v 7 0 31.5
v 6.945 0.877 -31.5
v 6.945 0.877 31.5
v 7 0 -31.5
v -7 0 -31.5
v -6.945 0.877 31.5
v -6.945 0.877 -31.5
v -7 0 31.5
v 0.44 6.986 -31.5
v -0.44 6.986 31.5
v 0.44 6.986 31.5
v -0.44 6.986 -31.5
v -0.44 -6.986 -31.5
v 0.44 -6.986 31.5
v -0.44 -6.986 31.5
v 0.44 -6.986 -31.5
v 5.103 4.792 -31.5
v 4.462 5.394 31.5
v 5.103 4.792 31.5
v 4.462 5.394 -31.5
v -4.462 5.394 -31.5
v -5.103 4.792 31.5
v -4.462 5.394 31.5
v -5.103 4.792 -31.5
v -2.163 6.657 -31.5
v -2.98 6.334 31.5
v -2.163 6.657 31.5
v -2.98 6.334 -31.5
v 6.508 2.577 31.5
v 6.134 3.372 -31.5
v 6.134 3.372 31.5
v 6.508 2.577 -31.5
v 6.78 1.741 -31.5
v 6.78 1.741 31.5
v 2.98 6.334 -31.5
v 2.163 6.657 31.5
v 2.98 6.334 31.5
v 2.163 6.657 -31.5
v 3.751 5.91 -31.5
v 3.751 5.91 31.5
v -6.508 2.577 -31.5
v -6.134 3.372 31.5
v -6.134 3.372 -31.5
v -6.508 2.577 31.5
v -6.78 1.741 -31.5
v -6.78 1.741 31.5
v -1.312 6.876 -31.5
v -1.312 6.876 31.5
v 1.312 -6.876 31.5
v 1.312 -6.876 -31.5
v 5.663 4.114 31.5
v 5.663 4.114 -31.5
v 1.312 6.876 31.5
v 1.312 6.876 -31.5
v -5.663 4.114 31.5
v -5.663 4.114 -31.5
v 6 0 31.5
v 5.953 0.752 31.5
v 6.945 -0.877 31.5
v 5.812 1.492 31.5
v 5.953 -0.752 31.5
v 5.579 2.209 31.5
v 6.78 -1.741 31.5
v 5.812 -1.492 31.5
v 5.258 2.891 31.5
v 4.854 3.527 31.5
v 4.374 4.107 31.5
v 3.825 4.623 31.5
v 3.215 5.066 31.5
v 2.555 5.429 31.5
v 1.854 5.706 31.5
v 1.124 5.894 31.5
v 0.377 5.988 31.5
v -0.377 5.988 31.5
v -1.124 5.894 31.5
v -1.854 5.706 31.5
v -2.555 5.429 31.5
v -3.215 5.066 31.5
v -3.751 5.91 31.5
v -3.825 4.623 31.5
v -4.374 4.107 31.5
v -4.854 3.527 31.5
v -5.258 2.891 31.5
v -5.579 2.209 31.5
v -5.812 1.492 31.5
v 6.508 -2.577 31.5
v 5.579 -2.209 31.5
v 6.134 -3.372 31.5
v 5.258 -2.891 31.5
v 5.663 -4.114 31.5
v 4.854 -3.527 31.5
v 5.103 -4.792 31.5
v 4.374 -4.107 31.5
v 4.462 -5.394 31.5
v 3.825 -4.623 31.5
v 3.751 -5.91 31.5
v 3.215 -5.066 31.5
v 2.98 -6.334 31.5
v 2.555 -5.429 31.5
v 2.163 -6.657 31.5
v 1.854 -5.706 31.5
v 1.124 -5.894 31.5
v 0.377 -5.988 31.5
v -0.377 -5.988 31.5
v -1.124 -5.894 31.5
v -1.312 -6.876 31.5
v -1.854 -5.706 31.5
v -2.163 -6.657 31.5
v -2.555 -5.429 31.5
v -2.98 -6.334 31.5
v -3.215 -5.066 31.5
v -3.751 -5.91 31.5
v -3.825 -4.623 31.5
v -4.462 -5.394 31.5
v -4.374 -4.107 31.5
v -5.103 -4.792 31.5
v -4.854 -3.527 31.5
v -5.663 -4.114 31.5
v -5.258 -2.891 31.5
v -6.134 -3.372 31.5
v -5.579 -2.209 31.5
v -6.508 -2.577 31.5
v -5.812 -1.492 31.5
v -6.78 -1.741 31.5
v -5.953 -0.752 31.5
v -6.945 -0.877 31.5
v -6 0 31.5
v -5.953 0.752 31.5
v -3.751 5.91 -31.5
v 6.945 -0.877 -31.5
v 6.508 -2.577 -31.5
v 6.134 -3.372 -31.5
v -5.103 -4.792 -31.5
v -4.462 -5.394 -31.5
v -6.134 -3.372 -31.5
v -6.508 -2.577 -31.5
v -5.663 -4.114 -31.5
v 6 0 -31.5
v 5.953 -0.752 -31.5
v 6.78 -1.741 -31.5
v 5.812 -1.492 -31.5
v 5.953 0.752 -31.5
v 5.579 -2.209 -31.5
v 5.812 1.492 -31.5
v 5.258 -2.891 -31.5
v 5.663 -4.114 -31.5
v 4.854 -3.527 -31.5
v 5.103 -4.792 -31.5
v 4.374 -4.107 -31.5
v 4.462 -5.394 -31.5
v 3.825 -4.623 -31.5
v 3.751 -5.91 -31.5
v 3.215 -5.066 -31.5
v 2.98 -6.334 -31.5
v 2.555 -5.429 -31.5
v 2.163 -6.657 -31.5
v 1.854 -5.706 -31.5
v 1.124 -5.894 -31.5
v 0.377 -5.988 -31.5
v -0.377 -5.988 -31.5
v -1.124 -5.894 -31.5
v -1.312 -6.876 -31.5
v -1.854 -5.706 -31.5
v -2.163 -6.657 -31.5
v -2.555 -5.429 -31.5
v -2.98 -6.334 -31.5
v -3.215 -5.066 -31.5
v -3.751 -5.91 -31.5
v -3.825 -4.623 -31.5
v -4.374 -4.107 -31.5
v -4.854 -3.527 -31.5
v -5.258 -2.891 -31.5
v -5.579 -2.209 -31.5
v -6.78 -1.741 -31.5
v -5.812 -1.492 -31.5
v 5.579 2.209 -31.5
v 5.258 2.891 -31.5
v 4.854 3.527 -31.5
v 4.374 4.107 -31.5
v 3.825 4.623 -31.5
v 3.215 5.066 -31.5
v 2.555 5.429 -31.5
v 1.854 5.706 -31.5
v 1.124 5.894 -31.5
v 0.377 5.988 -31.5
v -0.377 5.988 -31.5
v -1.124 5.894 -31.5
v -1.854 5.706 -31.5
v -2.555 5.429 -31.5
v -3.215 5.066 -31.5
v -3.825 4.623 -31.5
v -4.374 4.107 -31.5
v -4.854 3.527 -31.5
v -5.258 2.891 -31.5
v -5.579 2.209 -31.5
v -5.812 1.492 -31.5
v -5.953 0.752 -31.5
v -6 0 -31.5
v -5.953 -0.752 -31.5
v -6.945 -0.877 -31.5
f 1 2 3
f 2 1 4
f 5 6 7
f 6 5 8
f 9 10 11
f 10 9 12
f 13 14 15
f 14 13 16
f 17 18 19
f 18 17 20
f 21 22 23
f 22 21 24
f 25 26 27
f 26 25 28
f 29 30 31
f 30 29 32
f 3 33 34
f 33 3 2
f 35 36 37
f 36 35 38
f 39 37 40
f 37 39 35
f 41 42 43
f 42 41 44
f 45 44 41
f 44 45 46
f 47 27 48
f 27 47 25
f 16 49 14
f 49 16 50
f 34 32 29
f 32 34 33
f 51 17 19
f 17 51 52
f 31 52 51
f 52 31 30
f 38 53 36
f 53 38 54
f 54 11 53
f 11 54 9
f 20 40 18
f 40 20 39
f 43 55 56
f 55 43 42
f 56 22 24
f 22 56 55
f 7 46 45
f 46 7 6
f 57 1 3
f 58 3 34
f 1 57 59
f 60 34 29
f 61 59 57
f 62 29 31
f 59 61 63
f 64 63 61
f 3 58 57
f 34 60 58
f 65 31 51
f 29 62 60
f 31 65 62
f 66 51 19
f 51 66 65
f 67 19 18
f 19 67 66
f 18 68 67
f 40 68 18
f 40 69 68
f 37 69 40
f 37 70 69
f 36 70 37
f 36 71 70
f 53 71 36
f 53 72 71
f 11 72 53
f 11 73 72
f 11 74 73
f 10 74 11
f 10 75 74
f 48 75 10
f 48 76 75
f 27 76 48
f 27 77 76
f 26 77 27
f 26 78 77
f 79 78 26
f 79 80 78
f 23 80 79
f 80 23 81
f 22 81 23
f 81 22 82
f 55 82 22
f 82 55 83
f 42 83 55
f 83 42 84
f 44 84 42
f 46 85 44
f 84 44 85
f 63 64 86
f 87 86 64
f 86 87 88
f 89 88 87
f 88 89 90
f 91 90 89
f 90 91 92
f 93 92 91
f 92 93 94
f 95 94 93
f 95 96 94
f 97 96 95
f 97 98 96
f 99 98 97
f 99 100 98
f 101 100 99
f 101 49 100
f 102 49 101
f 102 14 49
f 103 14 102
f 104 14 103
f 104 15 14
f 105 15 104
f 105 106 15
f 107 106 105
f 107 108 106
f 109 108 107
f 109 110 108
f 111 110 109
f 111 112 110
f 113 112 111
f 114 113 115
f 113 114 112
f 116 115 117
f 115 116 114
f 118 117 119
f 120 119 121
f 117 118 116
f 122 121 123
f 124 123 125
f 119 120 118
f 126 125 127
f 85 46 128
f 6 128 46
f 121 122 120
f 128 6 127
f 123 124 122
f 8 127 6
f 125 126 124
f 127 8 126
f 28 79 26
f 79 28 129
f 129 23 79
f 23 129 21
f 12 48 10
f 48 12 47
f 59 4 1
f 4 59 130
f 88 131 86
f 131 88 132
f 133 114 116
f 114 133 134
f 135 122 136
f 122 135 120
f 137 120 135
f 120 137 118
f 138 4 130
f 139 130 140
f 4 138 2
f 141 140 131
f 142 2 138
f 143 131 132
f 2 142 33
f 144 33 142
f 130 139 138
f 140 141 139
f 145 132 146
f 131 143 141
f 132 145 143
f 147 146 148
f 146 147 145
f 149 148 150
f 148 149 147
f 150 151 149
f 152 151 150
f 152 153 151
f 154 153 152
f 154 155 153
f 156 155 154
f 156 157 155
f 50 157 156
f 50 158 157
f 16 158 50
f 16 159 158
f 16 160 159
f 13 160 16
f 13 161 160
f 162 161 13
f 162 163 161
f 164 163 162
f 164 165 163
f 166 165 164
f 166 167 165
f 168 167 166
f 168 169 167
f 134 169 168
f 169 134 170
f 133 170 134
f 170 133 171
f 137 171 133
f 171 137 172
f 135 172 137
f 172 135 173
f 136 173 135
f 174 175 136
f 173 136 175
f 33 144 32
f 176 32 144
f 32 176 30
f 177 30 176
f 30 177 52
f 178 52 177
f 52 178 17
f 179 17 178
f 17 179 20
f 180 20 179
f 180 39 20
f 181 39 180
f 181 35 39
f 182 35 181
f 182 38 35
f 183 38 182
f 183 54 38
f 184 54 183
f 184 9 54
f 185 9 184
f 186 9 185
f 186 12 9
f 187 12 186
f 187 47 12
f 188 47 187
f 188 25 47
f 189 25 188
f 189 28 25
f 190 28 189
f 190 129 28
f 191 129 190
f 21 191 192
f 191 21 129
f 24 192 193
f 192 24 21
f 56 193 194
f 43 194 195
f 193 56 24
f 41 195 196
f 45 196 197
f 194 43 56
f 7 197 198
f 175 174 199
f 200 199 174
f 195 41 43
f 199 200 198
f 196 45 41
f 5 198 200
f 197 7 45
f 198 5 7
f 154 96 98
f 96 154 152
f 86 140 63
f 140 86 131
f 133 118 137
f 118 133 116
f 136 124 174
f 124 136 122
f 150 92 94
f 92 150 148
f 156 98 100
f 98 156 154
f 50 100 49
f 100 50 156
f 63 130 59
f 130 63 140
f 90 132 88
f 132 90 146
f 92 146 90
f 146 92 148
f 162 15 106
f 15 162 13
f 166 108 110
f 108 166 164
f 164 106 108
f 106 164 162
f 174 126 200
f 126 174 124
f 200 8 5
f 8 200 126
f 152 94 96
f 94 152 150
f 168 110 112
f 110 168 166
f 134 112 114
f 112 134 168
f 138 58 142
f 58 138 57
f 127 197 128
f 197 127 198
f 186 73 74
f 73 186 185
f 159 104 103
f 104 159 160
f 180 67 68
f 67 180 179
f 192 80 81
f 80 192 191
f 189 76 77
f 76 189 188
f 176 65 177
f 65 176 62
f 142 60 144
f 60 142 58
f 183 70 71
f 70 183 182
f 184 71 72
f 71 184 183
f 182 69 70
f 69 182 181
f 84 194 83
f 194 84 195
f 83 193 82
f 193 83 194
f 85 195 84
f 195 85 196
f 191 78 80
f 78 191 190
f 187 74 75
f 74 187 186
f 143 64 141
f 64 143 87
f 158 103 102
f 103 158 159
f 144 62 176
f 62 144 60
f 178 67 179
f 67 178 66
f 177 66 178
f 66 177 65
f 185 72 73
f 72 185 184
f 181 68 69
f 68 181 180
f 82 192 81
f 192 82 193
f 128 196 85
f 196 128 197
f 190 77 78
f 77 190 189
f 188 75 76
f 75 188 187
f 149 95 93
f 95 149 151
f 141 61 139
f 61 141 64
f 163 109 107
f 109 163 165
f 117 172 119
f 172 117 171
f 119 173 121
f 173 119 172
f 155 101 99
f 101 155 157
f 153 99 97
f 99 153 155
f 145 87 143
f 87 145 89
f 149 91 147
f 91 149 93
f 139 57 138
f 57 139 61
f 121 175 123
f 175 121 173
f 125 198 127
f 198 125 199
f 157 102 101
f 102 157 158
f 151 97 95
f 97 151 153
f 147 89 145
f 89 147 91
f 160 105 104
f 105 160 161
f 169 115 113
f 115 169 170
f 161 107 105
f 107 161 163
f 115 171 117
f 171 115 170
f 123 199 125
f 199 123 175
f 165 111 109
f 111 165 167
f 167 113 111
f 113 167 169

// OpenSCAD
$fn = 50;


difference() {
	union() {
		translate(v = [0, 0, -31.5000000000]) {
			cylinder(h = 63, r = 7.0000000000);
		}
	}
	union() {
		translate(v = [0, 0, -100.0000000000]) {
			cylinder(h = 200, r = 6);
		}
	}
}
